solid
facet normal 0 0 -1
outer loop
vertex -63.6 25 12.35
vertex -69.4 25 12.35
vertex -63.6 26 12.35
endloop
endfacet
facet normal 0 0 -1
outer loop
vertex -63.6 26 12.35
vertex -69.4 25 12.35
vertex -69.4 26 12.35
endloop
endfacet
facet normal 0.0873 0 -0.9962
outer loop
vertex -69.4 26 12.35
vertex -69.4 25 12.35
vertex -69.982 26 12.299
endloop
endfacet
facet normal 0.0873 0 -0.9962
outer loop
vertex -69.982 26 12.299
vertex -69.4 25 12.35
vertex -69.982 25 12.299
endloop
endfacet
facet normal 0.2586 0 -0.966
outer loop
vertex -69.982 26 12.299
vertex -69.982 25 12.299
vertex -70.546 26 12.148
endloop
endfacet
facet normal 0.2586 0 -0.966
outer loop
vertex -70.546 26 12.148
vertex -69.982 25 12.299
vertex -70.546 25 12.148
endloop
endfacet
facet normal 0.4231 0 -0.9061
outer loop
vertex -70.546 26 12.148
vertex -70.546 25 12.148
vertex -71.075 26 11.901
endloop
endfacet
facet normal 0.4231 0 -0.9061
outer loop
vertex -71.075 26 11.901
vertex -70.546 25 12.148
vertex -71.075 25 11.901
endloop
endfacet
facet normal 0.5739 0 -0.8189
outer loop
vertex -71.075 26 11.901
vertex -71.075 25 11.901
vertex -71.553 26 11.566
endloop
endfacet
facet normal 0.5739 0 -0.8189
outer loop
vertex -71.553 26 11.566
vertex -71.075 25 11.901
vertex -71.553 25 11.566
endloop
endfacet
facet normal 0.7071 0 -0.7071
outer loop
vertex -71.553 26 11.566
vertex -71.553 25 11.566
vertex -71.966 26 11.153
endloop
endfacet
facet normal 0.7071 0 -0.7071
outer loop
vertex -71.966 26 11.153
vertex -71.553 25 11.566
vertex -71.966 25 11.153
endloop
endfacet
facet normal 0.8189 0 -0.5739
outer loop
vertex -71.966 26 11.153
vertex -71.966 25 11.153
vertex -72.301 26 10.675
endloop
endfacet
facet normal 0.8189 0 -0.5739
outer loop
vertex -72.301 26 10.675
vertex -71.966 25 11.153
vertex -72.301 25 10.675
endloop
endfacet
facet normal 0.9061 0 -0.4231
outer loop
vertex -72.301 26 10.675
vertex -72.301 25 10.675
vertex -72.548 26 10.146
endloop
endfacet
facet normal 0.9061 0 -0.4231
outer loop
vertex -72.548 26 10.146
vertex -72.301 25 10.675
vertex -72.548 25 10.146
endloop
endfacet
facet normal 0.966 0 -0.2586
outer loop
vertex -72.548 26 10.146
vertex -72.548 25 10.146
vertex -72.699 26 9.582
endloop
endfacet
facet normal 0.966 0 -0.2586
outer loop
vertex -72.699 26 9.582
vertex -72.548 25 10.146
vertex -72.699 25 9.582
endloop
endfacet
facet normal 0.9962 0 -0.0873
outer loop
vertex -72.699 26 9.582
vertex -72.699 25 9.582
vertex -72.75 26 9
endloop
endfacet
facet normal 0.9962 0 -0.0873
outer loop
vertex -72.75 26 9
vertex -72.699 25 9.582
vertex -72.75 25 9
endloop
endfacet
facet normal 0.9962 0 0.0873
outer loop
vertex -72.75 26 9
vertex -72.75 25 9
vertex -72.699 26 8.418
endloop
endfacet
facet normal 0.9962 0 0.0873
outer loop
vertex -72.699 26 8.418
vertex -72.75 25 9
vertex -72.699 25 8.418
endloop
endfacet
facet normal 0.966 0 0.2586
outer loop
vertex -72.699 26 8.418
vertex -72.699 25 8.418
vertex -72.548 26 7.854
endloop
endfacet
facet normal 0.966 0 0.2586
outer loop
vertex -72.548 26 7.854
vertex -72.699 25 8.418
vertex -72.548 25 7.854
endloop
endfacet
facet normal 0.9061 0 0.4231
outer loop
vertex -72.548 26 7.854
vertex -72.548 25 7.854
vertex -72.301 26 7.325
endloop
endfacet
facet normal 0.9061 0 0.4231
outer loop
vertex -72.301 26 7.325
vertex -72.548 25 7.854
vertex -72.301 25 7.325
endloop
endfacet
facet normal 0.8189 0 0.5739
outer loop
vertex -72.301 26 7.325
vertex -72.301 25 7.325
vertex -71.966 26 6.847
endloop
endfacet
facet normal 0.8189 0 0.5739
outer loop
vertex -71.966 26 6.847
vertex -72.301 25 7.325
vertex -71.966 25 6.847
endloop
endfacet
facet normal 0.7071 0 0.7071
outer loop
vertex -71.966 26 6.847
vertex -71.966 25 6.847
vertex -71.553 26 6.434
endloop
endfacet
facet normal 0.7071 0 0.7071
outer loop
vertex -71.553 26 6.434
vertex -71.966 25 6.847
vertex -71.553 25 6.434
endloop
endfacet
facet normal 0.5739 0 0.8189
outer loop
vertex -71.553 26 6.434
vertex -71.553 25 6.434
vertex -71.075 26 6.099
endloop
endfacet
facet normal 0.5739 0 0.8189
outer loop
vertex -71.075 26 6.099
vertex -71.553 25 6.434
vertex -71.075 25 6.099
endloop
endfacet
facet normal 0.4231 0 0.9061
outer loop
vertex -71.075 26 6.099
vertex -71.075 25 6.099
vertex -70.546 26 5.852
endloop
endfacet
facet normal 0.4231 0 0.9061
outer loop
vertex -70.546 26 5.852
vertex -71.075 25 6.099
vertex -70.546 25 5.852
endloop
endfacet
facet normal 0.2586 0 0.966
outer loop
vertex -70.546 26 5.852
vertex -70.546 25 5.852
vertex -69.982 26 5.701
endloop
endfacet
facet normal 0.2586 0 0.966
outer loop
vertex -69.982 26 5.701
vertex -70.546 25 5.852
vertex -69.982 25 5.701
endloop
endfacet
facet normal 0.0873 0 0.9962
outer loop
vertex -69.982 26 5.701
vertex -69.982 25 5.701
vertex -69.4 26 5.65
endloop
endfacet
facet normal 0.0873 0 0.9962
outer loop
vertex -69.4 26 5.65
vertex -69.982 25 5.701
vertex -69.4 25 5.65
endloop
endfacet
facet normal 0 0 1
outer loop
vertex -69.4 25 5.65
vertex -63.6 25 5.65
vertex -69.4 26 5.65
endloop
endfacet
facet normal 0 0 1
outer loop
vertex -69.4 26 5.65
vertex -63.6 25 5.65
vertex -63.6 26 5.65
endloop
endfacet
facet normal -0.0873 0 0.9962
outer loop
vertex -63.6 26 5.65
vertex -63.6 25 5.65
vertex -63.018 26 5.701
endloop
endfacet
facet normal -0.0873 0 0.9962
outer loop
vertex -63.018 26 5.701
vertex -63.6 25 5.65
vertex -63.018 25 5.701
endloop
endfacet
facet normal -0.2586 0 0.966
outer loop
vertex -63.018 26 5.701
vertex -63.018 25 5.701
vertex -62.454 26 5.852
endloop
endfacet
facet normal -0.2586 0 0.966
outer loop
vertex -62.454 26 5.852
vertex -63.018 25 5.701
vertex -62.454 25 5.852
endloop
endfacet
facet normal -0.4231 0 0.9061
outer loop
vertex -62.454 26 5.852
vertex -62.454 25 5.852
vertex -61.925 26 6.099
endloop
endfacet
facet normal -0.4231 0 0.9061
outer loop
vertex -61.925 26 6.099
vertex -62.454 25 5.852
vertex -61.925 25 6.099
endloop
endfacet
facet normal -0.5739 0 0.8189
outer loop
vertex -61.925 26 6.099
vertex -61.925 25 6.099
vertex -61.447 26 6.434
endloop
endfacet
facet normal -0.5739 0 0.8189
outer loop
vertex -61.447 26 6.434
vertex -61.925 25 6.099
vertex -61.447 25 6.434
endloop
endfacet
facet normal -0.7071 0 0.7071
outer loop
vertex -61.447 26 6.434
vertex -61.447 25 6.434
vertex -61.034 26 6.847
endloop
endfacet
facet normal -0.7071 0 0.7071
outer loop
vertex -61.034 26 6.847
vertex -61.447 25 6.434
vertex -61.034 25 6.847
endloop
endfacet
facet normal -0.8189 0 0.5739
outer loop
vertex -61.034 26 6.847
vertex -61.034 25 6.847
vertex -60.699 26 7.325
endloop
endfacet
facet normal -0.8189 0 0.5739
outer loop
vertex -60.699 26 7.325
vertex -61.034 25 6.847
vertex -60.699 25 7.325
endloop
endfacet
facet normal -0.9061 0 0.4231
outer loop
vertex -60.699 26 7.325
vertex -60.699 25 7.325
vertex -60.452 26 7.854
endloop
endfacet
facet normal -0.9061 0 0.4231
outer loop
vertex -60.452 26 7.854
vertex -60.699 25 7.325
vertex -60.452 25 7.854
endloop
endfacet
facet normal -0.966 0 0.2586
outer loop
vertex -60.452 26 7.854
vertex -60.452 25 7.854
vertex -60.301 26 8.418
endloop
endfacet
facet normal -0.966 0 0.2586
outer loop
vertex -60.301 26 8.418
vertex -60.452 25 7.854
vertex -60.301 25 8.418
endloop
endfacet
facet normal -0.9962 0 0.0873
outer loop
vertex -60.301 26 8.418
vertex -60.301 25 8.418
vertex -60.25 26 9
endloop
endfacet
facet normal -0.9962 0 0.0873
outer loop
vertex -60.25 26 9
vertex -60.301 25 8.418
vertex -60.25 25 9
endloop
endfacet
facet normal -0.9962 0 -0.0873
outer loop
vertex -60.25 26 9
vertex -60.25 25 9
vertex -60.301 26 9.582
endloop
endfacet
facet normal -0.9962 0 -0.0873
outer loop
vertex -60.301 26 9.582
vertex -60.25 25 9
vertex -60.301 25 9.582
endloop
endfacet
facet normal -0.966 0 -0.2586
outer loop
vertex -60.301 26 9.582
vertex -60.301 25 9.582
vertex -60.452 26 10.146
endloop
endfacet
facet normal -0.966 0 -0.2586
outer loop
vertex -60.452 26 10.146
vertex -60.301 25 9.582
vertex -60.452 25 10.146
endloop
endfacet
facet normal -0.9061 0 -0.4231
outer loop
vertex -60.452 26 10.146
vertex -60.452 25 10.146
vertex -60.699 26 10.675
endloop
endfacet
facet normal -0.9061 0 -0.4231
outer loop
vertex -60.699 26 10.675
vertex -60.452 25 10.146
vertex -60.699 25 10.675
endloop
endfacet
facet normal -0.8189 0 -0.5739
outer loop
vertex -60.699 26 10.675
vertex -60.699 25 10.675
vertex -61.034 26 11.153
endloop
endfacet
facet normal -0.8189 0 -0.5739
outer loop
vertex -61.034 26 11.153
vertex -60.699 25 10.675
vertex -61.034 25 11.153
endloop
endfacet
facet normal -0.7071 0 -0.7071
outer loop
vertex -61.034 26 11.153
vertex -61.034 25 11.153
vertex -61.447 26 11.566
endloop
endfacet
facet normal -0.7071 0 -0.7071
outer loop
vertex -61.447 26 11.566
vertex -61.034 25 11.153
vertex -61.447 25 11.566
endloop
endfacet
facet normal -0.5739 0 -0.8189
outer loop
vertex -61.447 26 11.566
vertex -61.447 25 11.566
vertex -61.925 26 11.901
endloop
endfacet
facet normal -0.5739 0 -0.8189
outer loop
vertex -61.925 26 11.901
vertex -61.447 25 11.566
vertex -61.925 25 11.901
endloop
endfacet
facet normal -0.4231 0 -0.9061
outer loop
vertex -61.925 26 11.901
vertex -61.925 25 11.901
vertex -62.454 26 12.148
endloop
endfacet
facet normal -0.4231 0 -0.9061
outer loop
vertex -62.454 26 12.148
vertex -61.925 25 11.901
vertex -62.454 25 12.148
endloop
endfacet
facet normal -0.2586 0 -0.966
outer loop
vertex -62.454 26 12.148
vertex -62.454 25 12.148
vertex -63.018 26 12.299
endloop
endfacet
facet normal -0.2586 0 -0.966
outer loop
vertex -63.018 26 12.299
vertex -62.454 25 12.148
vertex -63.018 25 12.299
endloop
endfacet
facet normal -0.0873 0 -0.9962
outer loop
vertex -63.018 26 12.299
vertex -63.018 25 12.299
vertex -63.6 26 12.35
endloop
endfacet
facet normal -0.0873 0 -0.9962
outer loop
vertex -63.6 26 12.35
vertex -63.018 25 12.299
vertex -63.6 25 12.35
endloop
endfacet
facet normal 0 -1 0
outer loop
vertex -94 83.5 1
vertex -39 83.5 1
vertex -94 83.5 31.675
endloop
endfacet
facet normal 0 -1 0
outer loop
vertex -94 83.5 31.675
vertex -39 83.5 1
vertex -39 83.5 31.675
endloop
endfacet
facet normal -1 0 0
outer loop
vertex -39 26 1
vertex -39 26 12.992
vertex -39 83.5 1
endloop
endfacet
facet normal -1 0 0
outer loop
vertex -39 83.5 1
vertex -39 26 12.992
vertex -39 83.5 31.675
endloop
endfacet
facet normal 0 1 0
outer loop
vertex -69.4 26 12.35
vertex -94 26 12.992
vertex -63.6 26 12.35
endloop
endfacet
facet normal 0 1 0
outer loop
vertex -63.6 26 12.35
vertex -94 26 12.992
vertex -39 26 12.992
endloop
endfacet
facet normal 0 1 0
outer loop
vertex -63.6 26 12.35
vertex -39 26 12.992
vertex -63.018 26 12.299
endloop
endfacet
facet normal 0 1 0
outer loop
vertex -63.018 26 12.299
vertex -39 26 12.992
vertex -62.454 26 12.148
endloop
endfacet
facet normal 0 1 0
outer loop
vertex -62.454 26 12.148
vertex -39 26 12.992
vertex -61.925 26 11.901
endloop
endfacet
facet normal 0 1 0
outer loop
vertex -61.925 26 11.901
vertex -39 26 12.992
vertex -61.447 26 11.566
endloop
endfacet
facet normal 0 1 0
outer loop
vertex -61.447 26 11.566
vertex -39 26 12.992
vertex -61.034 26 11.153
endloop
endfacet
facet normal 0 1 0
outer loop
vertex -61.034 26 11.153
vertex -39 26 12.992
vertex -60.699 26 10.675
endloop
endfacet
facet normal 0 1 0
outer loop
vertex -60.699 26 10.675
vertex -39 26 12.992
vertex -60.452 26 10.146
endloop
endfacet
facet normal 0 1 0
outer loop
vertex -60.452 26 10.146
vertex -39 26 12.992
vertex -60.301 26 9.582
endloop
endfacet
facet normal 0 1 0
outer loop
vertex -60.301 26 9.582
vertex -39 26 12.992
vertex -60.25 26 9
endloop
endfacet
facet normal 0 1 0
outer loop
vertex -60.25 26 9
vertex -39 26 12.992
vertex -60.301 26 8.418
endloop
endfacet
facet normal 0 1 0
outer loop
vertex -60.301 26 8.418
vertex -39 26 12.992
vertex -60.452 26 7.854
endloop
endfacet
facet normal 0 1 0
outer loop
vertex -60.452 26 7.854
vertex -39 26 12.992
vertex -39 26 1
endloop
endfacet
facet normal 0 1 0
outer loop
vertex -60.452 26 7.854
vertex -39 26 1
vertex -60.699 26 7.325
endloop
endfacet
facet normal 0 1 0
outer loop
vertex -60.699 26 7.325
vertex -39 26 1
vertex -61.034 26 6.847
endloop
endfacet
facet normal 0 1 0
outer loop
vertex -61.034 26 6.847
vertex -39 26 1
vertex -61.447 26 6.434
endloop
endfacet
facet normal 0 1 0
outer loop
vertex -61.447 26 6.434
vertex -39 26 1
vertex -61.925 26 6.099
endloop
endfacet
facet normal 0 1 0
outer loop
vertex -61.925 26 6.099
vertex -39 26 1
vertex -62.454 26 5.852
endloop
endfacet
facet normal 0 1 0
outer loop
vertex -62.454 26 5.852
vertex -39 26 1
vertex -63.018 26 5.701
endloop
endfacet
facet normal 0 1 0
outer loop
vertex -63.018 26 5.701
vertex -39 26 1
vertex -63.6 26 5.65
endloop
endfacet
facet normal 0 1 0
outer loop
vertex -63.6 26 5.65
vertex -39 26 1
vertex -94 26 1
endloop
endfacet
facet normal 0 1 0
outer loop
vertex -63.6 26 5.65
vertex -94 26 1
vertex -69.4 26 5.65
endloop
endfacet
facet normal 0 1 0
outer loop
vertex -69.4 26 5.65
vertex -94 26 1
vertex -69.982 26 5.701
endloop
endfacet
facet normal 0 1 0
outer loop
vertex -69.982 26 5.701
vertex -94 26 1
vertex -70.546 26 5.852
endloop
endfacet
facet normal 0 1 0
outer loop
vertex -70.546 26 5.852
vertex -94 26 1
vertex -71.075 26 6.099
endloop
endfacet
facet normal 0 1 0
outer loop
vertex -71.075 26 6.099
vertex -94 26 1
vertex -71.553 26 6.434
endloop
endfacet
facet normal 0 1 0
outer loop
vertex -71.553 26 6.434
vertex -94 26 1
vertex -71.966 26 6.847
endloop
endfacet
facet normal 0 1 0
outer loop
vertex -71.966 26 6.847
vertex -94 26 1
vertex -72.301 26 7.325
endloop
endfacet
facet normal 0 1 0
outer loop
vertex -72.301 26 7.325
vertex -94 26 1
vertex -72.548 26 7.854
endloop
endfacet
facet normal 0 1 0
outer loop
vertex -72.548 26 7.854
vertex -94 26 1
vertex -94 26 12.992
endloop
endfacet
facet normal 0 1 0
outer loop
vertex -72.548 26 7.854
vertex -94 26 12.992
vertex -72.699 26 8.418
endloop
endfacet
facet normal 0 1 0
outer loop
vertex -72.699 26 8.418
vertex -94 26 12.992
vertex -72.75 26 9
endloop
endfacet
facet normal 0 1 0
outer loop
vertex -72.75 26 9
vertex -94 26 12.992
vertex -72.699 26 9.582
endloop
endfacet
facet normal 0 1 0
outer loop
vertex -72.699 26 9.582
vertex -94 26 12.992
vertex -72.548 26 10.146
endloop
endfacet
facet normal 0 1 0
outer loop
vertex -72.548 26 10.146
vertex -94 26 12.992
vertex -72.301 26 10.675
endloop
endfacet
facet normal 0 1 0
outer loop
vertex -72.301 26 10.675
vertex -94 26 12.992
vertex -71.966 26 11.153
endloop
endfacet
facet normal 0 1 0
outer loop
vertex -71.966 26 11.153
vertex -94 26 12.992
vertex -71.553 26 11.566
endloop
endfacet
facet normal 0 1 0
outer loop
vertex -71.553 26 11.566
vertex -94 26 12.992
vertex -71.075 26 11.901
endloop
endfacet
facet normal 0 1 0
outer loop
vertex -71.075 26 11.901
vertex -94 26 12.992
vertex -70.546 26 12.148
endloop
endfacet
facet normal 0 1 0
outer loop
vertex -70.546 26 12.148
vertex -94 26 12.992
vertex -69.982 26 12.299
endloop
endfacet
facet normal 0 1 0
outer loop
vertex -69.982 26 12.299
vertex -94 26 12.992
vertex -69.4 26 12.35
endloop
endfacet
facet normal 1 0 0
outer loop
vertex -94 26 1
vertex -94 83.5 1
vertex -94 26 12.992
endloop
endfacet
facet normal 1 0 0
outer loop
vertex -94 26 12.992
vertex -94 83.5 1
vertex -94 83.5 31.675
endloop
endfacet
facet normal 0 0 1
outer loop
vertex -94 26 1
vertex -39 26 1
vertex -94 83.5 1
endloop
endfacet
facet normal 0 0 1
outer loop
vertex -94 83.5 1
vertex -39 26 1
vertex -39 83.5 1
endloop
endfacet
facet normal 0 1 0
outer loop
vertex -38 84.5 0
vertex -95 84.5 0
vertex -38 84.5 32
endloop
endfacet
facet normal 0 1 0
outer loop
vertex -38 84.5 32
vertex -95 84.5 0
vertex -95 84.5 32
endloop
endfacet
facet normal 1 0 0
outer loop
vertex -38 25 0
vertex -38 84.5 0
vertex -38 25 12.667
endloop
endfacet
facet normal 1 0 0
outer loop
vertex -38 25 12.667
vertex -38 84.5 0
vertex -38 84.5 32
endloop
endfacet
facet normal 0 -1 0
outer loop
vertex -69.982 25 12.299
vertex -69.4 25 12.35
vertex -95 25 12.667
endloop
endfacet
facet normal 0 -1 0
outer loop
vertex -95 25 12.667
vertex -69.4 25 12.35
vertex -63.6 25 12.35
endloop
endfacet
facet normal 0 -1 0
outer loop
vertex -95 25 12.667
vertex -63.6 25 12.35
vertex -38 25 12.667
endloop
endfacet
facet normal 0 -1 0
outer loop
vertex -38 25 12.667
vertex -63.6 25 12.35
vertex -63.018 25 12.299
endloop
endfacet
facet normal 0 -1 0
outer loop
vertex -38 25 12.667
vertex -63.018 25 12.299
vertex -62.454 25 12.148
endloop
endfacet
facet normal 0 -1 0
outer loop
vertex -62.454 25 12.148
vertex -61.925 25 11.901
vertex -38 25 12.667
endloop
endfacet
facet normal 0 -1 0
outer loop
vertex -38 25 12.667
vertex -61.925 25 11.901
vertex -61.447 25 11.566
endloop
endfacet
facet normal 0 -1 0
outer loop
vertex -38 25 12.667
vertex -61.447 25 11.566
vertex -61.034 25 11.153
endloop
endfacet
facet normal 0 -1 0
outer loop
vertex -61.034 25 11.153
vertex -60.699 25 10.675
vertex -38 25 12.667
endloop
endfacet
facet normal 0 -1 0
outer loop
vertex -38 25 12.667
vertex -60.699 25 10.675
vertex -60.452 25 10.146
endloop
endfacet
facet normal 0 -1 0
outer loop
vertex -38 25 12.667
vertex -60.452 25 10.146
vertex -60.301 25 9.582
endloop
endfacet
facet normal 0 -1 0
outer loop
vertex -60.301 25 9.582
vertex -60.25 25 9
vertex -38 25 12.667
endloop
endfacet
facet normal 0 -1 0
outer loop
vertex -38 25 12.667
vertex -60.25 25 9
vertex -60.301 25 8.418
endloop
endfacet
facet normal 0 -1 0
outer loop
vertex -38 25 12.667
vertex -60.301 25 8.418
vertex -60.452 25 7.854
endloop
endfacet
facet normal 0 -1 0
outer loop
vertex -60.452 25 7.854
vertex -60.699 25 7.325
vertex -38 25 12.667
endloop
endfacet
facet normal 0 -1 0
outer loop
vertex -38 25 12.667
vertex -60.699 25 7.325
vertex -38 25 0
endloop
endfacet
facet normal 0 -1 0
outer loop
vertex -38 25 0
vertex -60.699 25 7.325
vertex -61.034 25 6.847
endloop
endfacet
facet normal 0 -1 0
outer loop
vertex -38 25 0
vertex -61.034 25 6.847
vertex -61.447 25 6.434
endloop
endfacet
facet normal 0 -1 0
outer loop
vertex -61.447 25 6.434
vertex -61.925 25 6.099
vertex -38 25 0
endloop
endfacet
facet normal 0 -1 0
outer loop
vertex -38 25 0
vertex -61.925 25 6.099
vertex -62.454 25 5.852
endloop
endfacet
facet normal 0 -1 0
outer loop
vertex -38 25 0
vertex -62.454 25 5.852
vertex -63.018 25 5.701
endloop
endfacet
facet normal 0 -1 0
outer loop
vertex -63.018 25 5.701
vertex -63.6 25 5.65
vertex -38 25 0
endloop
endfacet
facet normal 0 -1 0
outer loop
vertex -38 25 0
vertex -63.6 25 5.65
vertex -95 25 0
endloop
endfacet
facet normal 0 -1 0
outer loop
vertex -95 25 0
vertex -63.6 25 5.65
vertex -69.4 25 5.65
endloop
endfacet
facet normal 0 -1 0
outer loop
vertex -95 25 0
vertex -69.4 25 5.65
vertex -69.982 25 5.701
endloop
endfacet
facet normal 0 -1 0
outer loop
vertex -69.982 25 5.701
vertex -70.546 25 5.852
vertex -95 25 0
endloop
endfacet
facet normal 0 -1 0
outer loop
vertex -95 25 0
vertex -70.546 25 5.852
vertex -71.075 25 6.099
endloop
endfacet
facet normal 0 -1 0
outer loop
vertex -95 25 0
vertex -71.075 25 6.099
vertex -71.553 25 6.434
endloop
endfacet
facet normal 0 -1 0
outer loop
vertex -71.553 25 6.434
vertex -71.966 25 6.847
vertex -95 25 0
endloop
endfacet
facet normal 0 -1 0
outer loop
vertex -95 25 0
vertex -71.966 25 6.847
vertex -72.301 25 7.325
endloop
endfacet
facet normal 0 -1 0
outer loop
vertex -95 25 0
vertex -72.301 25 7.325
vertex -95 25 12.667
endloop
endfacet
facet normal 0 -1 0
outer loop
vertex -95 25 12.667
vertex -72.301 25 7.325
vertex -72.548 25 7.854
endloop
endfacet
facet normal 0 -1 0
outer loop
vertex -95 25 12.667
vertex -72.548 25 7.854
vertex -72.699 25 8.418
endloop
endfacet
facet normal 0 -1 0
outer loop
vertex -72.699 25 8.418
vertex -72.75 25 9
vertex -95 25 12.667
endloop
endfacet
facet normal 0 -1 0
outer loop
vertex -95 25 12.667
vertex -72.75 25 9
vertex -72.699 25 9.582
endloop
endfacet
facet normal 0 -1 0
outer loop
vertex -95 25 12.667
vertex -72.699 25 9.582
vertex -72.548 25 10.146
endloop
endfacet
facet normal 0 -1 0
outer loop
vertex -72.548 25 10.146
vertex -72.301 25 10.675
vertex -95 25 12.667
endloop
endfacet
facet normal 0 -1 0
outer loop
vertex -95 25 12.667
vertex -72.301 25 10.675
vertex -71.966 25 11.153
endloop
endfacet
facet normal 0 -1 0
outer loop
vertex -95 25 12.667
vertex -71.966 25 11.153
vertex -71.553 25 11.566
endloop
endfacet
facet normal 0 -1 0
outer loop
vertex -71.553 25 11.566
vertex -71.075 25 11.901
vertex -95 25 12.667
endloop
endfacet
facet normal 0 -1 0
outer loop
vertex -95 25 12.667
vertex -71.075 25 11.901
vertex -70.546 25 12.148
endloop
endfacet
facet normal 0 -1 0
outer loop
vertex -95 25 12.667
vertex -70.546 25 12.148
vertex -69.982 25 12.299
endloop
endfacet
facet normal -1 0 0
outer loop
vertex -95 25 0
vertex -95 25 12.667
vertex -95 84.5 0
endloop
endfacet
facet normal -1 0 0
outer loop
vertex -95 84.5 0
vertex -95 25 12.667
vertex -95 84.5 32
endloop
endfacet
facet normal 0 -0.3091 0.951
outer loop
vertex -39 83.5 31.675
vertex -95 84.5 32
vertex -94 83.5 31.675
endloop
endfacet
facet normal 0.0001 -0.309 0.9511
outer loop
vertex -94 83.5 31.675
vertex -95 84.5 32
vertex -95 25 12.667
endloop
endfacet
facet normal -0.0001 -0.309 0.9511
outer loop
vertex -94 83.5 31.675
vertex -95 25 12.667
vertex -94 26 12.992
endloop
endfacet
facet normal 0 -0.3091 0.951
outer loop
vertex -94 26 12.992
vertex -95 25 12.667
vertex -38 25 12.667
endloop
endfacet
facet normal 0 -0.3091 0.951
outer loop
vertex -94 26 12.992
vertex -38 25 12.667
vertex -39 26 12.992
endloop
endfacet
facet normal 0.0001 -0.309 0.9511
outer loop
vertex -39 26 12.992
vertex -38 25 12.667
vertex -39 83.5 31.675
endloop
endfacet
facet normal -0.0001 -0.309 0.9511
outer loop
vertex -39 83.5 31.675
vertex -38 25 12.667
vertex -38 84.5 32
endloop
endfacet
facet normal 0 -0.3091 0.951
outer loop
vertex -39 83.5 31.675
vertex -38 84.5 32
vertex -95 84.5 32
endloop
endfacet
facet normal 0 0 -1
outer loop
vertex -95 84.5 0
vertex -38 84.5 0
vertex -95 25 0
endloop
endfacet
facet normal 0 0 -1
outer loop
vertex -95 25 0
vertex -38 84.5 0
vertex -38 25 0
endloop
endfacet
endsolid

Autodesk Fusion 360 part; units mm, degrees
sketch "Sketch1" plane through (0, 0, 0) normal (0, 0, 1) x (1, 0, 0)
  line L0 (-95, 25) -> (-38, 25)
  line L1 (-38, 25) -> (-38, 84.5)
  line L2 (-38, 84.5) -> (-95, 84.5)
  line L3 (-95, 84.5) -> (-95, 25)
  dimension "d1" = 57
  dimension "d2" = 59.5
extrude "Extrude1" add sketch "Sketch1" along normal blind 32
shell "Shell1" thickness 1 removed faces 1 at (-76, 64.6667, 32)
draft "Draft1" angle -18 neutral plane through (-38, 84.5, 0) pull (0, 1, 0) 1 faces at (-94.6667, 64.3333, 32)
sketch "Sketch4" plane through (0, 25, 0) normal (0, -1, 0) x (1, 0, 0)
  line L0 (-95, 0) -> (-38, 0)
  line L1 (-38, 0) -> (-38, 12.6673)
  line L2 (-38, 12.6673) -> (-95, 12.6673)
  line L3 (-95, 12.6673) -> (-95, 0)
  line L4 (-63.6, 12.35) -> (-69.4, 12.35)
  arc A0 (-69.4, 12.35) -> (-69.4, 5.65) centre (-69.4, 9) ccw
  line L5 (-69.4, 5.65) -> (-63.6, 5.65)
  arc A1 (-63.6, 5.65) -> (-63.6, 12.35) centre (-63.6, 9) ccw
  line L6 (-60.25, 9) -> (-72.75, 9) construction
  dimension "d15" = 12.5
  dimension "d16" = 6.7
extrude "Extrude4" cut sketch "Sketch4" against normal blind 1 contours L4 A0 L5 A1
